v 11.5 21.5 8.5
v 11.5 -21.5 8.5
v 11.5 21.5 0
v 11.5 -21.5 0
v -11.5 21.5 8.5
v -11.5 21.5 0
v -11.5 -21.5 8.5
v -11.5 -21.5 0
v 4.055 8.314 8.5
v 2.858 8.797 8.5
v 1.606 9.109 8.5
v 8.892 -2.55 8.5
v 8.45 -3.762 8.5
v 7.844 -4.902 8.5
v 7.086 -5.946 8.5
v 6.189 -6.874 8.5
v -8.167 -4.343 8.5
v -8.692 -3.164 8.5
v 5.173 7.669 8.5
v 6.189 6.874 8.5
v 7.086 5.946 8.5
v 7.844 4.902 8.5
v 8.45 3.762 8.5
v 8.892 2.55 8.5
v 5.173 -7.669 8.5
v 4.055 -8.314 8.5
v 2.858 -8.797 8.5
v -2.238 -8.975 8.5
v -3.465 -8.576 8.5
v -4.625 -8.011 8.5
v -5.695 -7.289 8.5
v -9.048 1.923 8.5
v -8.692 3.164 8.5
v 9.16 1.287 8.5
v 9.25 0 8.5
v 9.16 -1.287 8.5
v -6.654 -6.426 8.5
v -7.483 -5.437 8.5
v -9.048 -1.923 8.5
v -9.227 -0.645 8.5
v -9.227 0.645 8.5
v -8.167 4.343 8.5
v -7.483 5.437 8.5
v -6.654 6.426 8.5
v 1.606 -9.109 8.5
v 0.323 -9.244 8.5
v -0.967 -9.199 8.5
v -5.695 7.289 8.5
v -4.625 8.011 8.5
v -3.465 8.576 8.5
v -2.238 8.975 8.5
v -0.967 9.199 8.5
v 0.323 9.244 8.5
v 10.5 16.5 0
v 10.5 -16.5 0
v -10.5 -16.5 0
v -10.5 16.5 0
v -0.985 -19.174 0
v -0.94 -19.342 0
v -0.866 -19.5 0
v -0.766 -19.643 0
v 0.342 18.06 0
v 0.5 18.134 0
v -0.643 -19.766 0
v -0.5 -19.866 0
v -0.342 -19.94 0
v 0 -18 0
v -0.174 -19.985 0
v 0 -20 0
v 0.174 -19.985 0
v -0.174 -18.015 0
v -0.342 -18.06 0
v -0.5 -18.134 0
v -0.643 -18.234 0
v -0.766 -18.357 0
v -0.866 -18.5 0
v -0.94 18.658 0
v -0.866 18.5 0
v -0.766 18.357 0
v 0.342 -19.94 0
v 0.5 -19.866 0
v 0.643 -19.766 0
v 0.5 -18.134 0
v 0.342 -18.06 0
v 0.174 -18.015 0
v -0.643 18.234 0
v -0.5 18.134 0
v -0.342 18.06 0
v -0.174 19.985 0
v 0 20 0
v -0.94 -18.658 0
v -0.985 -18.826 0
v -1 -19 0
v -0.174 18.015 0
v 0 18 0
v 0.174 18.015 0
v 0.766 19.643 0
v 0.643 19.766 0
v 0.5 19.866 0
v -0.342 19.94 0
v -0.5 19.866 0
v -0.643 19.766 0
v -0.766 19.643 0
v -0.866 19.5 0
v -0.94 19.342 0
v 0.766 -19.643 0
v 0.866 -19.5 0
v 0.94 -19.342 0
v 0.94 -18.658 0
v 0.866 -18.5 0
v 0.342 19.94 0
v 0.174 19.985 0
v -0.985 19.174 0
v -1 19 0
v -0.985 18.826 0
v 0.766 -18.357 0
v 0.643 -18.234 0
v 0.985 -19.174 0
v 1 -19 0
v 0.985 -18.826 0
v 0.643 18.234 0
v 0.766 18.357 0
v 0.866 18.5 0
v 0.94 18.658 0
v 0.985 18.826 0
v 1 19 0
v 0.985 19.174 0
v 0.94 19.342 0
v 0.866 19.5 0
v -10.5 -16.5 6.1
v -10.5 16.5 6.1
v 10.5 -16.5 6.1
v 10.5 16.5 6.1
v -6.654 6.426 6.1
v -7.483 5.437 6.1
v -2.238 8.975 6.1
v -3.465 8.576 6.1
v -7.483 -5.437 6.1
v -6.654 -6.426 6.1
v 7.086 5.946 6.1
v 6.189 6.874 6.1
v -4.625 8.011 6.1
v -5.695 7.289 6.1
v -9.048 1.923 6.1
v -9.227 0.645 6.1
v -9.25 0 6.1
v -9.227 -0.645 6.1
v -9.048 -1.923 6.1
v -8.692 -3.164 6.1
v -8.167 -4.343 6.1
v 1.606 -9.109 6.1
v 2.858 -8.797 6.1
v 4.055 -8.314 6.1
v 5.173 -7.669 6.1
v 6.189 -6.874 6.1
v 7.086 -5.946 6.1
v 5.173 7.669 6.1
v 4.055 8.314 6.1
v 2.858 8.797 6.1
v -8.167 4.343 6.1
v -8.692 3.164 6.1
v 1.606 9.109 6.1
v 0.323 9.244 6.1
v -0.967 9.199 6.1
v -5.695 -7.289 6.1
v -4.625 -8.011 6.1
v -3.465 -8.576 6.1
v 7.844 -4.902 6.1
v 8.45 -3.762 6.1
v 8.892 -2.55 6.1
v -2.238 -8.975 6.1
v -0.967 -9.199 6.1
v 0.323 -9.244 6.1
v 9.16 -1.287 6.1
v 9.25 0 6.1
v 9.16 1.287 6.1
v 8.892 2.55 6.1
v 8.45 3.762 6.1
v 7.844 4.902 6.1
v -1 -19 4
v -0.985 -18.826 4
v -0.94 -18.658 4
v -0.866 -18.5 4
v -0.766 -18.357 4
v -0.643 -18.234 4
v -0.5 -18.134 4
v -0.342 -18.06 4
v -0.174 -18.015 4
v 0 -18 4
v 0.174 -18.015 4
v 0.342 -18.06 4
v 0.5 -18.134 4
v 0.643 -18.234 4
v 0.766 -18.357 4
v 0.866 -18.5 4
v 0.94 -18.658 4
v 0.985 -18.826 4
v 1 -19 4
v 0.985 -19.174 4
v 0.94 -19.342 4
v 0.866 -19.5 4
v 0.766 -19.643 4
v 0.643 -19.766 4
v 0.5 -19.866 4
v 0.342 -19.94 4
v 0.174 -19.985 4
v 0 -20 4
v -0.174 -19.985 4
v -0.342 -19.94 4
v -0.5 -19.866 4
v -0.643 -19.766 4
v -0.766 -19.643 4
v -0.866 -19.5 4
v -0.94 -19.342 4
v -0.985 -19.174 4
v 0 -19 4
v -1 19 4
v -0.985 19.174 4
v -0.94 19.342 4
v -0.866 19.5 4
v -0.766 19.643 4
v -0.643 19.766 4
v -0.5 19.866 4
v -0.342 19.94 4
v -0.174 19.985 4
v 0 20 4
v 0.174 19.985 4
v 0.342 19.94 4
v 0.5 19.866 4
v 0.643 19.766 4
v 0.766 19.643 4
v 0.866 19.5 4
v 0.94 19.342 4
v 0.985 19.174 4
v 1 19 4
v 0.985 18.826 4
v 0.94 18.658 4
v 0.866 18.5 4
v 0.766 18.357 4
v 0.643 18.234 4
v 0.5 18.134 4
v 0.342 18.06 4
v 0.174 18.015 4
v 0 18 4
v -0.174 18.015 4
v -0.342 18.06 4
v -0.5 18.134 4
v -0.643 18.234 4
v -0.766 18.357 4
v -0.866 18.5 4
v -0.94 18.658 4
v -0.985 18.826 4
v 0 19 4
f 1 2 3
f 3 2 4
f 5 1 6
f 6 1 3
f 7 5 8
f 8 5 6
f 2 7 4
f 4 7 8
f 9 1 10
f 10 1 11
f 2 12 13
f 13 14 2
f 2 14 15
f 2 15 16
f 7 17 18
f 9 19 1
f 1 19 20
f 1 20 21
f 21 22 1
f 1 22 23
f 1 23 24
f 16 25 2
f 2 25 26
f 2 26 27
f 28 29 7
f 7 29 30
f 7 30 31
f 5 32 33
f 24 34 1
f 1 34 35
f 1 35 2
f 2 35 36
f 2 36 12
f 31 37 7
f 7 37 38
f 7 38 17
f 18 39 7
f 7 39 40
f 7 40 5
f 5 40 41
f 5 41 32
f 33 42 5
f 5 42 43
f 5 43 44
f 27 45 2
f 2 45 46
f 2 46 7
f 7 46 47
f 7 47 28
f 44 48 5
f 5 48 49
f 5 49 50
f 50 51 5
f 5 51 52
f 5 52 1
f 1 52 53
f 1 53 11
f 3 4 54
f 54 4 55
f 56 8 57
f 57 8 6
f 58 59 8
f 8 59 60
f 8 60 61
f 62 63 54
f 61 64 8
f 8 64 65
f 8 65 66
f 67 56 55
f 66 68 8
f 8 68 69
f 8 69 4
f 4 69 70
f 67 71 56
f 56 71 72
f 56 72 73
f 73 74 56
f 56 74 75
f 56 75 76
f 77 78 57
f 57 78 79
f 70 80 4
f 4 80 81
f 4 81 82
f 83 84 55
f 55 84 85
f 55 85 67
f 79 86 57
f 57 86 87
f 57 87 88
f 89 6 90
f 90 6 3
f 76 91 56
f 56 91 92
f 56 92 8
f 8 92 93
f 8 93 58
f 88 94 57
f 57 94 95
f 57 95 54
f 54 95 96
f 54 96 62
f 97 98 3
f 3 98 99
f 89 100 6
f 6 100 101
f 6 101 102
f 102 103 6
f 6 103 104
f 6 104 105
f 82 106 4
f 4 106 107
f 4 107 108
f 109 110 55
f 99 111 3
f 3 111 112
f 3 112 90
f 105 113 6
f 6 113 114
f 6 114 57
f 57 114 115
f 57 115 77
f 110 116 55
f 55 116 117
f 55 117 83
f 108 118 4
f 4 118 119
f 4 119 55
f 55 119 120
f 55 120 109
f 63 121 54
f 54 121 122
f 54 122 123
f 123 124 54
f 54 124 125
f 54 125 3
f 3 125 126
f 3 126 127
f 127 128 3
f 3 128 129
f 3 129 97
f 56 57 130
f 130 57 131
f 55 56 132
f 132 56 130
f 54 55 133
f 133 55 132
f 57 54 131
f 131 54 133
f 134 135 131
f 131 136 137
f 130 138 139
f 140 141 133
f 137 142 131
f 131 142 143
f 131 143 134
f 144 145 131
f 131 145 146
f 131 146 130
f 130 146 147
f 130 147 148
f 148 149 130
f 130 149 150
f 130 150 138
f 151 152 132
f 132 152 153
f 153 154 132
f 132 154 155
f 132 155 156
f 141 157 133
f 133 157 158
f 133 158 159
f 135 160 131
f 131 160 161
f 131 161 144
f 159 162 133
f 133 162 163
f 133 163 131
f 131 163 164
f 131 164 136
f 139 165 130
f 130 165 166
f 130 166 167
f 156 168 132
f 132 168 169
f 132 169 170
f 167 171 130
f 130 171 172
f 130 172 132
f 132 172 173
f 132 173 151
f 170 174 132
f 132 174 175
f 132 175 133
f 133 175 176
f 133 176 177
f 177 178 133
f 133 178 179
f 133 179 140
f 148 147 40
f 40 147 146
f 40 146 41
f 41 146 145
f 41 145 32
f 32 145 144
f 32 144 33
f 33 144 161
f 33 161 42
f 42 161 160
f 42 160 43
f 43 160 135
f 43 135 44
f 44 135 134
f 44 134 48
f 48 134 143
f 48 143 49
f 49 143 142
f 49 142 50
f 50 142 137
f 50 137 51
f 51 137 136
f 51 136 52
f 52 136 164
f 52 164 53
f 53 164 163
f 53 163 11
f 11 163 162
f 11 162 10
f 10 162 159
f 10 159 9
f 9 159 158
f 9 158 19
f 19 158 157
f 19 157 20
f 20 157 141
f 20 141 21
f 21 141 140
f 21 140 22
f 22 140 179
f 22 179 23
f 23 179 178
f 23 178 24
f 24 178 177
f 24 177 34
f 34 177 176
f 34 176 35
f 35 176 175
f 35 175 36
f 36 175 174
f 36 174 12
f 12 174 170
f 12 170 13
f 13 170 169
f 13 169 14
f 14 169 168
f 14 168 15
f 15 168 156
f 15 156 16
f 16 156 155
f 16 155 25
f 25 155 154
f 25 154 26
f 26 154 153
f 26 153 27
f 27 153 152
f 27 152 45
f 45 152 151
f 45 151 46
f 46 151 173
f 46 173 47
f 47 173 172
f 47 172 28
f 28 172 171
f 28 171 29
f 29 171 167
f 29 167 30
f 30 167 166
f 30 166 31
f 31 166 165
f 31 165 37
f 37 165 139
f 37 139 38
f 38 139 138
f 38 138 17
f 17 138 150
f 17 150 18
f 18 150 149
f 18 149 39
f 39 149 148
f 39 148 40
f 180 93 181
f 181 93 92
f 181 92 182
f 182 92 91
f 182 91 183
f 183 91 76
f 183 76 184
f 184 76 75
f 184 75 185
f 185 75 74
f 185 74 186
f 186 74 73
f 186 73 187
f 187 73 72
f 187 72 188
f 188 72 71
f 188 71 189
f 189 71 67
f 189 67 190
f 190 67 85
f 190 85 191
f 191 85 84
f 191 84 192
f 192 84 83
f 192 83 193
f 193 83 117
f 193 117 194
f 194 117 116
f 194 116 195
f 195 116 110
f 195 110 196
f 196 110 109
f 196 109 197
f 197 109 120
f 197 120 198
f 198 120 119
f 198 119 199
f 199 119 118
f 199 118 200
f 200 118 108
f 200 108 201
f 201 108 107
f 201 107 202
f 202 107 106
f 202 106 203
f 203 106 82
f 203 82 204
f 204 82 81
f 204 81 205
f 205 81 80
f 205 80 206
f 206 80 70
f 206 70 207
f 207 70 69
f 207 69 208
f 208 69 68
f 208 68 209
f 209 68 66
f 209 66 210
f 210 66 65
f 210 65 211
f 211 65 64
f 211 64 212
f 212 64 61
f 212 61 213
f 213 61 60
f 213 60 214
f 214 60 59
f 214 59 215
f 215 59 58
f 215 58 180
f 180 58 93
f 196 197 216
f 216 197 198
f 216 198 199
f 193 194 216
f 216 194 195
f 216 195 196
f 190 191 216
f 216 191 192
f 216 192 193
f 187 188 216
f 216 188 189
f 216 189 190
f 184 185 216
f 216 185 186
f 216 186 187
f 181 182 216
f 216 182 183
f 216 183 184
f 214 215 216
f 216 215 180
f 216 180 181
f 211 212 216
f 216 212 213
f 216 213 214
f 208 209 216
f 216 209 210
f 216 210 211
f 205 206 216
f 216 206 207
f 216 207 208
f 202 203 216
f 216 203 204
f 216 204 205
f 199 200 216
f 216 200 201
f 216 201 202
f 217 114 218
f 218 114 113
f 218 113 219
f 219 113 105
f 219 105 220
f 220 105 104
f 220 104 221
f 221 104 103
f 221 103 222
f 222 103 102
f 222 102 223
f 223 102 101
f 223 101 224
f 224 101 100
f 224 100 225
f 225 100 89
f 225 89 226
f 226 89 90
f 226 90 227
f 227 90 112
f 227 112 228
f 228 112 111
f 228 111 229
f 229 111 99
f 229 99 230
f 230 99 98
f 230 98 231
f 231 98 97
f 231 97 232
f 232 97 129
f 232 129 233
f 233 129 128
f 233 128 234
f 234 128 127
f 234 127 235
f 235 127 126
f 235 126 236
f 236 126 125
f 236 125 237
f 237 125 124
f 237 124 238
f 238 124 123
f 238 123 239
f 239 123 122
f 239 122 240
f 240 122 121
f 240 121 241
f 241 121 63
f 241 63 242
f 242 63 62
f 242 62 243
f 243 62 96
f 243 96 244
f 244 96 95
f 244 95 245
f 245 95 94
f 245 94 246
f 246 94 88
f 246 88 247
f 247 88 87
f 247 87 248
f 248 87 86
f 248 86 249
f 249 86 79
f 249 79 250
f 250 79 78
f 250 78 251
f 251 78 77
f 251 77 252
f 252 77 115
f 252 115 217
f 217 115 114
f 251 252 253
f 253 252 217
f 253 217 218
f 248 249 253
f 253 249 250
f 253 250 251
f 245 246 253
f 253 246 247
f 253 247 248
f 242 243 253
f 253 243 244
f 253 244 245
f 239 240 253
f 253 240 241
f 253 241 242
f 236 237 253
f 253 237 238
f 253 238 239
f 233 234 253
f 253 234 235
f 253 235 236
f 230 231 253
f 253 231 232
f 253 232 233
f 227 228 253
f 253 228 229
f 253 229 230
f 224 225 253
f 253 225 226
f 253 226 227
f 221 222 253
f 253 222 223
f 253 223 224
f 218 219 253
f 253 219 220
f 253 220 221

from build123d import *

# Parameters (mm, degrees)
ESBO_O1_W                = 23
ESBO_O1_H                = 43
RESSALTO_EXTRUS_O1_DEPTH = 8.5
ESBO_O2_W                = 21
ESBO_O2_H                = 33
CORTE_EXTRUS_O1_DEPTH    = 6.1
ESBO_O3_R                = 9.25
CORTE_EXTRUS_O2_DEPTH    = 26.821502667
ESBO_O4_R                = 1
CORTE_EXTRUS_O3_DEPTH    = 4


with BuildPart() as part:
    # Esboço1 → Ressalto-extrusão1 (new body)
    with BuildSketch(Plane.XY):
        Rectangle(ESBO_O1_W, ESBO_O1_H)
    extrude(amount=RESSALTO_EXTRUS_O1_DEPTH)

    # Esboço2 → Corte-extrusão1 (cut)
    with BuildSketch(Plane(origin=(0, 0, 0), x_dir=(-1, 0, 0), z_dir=(0, 0, -1))):
        Rectangle(ESBO_O2_W, ESBO_O2_H)
    extrude(amount=-CORTE_EXTRUS_O1_DEPTH, mode=Mode.SUBTRACT)

    # Esboço3 → Corte-extrusão2 (cut, through all)
    with BuildSketch(Plane.XY.offset(8.5)):
        Circle(ESBO_O3_R)
    extrude(amount=-CORTE_EXTRUS_O2_DEPTH, mode=Mode.SUBTRACT)

    # Esboço4 → Corte-extrusão3 (cut)
    with BuildSketch(Plane(origin=(0, 0, 0), x_dir=(-1, 0, 0), z_dir=(0, 0, -1))):
        with Locations((0, 19)):
            Circle(ESBO_O4_R)
        with Locations(Location((0, -19, 0), (0, 0, 180))):
            Circle(ESBO_O4_R)
    extrude(amount=-CORTE_EXTRUS_O3_DEPTH, mode=Mode.SUBTRACT)


solid = part.part
